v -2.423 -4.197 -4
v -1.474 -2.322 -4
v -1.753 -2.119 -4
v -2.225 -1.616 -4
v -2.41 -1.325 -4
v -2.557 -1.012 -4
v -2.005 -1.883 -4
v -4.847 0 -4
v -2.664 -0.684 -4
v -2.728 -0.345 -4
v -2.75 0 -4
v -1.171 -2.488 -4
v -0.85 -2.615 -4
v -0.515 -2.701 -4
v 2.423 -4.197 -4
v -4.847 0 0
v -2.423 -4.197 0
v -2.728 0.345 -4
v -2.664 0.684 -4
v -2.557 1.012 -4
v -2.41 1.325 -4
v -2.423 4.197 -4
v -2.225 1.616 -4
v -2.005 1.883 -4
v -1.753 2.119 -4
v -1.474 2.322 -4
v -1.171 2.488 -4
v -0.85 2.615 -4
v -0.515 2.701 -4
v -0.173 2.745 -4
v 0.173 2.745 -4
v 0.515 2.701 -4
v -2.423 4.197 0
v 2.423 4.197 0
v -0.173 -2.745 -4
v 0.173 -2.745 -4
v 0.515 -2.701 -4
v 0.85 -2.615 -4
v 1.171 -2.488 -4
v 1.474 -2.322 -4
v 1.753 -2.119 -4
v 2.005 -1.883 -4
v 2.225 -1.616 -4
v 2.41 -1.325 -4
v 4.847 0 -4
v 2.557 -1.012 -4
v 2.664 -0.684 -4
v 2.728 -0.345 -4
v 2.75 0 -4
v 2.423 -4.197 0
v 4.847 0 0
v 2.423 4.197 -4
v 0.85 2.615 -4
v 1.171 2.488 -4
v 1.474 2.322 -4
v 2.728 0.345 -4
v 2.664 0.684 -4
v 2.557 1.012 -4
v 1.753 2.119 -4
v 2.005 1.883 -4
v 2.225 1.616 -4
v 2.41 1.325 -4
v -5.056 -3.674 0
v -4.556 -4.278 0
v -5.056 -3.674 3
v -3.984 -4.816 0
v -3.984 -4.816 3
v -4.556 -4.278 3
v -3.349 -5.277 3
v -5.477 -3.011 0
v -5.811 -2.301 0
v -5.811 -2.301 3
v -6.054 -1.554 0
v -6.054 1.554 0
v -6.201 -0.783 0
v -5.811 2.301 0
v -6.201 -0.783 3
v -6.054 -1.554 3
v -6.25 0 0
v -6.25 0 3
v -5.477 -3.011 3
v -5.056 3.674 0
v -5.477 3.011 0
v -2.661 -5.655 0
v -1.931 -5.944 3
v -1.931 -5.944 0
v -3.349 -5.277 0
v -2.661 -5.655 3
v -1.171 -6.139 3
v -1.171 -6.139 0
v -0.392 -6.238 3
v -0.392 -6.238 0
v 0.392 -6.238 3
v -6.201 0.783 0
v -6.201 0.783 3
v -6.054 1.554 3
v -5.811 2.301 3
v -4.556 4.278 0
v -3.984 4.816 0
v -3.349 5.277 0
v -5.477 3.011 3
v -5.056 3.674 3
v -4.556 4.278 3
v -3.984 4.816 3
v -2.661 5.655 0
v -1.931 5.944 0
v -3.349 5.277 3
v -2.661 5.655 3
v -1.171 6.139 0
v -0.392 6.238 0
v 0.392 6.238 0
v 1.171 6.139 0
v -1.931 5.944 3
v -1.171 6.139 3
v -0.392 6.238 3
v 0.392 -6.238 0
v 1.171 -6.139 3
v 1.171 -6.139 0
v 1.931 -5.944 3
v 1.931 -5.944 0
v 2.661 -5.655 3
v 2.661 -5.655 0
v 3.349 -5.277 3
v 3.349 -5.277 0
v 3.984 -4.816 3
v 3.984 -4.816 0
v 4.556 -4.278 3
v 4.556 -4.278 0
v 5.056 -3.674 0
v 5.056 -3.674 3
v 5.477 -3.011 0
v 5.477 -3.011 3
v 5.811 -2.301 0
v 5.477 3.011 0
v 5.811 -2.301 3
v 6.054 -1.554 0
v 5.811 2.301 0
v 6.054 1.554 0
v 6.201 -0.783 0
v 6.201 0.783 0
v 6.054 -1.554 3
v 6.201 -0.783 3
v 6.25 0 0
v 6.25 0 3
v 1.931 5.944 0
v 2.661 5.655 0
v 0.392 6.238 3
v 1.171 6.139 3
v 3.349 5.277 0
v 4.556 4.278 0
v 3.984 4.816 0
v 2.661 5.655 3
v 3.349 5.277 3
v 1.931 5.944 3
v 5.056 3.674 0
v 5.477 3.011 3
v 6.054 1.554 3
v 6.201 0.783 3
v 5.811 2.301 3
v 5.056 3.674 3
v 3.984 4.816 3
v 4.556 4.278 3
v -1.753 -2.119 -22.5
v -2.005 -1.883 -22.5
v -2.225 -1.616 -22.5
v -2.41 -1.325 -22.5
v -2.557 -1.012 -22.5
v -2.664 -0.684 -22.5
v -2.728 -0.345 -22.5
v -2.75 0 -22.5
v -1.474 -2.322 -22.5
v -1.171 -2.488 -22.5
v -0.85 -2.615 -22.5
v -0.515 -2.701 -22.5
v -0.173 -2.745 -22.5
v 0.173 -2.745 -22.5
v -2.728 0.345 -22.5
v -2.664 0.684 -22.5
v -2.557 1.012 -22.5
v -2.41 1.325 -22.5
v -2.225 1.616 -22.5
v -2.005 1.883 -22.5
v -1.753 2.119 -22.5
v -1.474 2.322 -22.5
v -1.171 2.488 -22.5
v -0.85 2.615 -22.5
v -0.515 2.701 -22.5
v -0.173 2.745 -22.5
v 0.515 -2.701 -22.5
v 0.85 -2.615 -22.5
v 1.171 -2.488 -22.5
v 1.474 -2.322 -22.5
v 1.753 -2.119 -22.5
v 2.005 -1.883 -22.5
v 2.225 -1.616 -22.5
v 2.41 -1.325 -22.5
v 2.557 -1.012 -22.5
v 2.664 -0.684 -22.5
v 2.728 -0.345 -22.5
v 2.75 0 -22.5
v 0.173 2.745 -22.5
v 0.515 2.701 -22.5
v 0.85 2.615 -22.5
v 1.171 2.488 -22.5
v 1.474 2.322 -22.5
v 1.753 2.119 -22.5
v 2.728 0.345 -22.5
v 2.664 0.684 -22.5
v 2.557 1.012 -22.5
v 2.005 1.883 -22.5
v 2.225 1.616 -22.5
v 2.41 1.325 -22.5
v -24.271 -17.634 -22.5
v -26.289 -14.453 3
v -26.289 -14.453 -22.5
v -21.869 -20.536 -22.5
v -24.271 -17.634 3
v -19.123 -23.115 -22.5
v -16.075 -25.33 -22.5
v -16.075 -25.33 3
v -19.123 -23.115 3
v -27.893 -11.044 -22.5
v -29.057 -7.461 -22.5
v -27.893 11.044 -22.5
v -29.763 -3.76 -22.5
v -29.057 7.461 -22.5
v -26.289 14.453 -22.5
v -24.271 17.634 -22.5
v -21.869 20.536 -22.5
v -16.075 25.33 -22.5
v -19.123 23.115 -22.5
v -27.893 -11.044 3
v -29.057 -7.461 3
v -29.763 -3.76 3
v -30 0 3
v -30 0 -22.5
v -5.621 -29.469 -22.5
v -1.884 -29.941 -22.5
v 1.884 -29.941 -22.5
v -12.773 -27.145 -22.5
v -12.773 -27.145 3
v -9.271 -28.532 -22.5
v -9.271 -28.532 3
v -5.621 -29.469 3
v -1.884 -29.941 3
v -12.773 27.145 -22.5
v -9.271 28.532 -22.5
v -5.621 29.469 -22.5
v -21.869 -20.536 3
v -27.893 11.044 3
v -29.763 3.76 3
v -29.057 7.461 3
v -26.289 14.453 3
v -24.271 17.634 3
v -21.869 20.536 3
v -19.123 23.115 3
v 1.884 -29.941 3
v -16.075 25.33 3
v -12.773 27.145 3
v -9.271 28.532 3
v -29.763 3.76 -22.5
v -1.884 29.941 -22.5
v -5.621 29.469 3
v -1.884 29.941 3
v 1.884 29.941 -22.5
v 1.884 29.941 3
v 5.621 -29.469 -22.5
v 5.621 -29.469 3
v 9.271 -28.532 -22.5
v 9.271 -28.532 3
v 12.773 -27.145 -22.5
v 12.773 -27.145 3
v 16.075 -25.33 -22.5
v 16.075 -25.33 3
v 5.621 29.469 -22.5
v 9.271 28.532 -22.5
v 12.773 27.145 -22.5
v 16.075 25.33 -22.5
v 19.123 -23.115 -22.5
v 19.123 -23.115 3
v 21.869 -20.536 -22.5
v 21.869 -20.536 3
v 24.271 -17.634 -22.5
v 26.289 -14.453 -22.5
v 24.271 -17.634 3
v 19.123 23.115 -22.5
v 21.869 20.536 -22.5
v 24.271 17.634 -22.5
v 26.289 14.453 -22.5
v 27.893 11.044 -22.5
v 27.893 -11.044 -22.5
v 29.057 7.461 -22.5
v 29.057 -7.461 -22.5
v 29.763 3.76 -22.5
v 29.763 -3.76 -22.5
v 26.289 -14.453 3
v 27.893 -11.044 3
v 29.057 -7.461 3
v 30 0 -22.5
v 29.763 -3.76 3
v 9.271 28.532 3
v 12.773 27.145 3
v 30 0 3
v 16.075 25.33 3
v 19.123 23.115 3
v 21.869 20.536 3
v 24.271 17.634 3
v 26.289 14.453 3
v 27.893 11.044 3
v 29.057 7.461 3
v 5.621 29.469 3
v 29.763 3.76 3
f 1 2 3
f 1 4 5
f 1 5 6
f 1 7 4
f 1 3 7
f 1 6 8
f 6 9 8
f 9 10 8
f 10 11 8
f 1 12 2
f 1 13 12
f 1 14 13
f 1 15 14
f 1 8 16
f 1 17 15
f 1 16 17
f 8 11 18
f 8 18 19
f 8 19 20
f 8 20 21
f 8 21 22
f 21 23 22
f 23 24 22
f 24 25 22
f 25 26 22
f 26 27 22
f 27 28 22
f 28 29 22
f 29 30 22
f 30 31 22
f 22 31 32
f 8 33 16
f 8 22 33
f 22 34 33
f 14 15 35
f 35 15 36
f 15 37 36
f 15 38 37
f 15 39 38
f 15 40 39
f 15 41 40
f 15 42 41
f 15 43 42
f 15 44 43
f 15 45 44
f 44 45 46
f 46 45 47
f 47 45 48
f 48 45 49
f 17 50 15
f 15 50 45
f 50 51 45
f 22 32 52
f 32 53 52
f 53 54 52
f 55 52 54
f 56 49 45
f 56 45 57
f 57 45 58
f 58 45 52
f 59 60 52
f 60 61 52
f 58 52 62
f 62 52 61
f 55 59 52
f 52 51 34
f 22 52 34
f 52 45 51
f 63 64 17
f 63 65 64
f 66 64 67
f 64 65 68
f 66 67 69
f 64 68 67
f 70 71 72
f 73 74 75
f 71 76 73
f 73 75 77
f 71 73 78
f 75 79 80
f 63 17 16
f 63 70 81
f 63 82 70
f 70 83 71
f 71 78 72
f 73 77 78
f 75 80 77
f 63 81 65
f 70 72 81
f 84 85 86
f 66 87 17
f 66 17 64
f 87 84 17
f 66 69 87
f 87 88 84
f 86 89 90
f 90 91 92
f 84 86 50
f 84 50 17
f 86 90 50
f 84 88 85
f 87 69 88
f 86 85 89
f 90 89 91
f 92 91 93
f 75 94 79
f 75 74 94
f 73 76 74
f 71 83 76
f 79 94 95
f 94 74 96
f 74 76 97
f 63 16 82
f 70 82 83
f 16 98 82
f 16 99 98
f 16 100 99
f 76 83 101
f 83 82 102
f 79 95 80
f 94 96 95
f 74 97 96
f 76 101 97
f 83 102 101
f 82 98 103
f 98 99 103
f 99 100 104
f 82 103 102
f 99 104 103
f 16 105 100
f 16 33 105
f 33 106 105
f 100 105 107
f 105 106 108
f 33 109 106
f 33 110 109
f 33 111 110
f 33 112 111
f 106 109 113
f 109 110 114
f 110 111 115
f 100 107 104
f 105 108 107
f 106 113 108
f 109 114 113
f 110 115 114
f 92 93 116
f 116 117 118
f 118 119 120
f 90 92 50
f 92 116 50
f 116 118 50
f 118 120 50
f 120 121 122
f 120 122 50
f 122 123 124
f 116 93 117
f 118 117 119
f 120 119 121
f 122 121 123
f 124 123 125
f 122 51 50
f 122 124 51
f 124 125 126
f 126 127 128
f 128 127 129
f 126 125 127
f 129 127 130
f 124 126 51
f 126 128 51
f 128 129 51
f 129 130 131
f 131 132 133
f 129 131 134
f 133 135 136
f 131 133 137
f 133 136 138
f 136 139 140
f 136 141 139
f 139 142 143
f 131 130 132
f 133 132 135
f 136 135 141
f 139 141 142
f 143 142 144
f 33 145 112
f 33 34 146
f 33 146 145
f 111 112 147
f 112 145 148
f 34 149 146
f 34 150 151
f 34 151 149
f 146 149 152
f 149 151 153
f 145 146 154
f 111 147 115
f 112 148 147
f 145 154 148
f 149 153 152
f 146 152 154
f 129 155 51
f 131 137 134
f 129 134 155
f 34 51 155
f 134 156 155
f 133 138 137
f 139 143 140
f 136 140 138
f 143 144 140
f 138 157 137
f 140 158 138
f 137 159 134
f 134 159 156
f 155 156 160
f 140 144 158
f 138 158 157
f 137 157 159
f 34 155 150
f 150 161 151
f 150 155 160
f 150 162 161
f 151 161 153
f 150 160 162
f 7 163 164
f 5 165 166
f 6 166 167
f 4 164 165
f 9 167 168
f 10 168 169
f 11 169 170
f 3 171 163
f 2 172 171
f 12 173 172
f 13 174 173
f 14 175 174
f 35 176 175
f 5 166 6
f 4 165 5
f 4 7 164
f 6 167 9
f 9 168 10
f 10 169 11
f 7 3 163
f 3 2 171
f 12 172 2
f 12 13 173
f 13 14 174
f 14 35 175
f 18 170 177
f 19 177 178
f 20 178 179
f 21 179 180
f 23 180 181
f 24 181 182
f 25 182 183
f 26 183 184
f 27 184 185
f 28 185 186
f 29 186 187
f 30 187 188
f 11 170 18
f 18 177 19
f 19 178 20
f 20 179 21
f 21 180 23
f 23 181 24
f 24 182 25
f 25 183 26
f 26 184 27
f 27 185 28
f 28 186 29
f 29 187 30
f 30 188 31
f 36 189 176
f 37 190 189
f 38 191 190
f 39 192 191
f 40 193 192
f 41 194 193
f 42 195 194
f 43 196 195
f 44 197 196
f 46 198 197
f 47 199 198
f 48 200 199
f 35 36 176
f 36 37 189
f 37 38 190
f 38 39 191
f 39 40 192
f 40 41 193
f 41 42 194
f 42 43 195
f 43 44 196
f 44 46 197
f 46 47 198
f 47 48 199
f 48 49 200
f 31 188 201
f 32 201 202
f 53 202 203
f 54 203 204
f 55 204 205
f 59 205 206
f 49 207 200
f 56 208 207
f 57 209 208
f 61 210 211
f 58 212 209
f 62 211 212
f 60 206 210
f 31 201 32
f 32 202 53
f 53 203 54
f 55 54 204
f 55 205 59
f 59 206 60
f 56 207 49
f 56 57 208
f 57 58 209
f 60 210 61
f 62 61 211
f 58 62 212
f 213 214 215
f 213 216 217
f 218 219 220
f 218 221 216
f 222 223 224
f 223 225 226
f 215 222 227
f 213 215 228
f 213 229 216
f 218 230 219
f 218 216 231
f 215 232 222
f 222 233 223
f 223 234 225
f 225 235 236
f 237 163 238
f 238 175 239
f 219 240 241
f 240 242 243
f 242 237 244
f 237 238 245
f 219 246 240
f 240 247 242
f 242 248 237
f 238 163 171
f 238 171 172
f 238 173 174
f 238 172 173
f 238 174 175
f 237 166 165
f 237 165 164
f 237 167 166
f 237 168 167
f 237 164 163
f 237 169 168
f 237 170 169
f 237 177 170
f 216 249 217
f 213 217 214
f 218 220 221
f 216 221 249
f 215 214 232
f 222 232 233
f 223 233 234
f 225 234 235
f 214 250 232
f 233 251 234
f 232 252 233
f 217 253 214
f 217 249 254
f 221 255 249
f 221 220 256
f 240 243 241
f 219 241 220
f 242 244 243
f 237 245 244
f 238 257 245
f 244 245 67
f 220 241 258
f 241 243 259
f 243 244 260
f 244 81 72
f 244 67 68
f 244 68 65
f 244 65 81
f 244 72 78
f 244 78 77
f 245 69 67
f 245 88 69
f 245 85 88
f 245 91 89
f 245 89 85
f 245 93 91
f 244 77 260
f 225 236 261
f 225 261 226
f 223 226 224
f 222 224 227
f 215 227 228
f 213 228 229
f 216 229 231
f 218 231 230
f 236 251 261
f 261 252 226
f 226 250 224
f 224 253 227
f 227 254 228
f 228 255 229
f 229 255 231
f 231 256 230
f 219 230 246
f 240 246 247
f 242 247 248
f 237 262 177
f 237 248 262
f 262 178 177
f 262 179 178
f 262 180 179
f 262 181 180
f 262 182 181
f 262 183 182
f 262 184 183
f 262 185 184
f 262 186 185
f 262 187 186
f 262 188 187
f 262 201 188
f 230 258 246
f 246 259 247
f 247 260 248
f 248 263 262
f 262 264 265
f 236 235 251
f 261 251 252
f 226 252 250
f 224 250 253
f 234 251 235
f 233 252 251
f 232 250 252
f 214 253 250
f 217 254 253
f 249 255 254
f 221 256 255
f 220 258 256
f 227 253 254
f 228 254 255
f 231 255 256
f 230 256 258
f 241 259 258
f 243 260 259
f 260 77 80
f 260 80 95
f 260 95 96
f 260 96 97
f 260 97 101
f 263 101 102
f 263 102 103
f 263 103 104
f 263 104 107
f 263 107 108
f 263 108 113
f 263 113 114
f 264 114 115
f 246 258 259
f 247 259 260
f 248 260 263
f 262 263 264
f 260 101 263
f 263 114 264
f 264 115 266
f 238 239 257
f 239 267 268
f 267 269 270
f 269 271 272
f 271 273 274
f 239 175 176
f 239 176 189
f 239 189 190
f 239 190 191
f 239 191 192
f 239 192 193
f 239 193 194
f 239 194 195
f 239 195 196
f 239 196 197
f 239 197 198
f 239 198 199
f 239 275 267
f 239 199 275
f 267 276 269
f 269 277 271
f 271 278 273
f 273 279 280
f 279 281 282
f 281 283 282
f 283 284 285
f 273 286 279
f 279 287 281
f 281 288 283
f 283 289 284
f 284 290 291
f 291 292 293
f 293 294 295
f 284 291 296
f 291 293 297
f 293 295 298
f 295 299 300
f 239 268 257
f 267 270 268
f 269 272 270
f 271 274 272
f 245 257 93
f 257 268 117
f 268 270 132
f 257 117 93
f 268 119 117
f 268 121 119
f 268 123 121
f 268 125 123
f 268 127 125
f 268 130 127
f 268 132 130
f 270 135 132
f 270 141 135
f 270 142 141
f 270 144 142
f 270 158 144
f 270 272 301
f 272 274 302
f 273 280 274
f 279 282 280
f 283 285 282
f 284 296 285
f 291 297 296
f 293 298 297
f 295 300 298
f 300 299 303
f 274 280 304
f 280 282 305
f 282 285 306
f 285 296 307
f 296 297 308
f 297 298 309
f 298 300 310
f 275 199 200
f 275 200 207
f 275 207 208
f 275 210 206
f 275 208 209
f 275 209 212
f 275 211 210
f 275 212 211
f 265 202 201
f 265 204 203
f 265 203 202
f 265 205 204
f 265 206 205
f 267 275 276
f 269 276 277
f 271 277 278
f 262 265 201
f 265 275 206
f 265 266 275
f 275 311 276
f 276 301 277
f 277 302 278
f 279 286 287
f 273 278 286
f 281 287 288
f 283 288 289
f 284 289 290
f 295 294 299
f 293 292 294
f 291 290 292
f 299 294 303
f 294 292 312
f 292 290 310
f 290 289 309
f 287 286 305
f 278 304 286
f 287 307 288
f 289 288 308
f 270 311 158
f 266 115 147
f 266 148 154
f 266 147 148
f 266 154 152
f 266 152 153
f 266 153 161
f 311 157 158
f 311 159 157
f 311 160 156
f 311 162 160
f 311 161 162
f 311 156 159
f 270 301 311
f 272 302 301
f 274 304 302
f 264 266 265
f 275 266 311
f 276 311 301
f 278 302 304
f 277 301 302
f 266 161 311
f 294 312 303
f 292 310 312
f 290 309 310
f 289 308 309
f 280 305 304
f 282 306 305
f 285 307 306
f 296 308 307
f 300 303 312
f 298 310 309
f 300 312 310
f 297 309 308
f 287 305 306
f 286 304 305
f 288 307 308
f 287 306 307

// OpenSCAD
$fn = 50;


difference() {
	union() {
		translate(v = [0, 0, -22.5000000000]) {
			cylinder(h = 25.5000000000, r = 30.0000000000);
		}
	}
	union() {
		translate(v = [0, 0, 0]) {
			rotate(a = [0, 0, 0]) {
				difference() {
					union() {
						translate(v = [0, 0, -4]) {
							linear_extrude(height = 4) {
								polygon(points = [[4.8468000000, 0.0000000000], [2.4234000000, 4.1974519271], [-2.4234000000, 4.1974519271], [-4.8468000000, 0.0000000000], [-2.4234000000, -4.1974519271], [2.4234000000, -4.1974519271]]);
							}
						}
					}
					union();
				}
			}
		}
		#cylinder(h = 3, r = 6.2500000000);
		#translate(v = [0, 0, -100.0000000000]) {
			cylinder(h = 200, r = 2.7500000000);
		}
	}
}
